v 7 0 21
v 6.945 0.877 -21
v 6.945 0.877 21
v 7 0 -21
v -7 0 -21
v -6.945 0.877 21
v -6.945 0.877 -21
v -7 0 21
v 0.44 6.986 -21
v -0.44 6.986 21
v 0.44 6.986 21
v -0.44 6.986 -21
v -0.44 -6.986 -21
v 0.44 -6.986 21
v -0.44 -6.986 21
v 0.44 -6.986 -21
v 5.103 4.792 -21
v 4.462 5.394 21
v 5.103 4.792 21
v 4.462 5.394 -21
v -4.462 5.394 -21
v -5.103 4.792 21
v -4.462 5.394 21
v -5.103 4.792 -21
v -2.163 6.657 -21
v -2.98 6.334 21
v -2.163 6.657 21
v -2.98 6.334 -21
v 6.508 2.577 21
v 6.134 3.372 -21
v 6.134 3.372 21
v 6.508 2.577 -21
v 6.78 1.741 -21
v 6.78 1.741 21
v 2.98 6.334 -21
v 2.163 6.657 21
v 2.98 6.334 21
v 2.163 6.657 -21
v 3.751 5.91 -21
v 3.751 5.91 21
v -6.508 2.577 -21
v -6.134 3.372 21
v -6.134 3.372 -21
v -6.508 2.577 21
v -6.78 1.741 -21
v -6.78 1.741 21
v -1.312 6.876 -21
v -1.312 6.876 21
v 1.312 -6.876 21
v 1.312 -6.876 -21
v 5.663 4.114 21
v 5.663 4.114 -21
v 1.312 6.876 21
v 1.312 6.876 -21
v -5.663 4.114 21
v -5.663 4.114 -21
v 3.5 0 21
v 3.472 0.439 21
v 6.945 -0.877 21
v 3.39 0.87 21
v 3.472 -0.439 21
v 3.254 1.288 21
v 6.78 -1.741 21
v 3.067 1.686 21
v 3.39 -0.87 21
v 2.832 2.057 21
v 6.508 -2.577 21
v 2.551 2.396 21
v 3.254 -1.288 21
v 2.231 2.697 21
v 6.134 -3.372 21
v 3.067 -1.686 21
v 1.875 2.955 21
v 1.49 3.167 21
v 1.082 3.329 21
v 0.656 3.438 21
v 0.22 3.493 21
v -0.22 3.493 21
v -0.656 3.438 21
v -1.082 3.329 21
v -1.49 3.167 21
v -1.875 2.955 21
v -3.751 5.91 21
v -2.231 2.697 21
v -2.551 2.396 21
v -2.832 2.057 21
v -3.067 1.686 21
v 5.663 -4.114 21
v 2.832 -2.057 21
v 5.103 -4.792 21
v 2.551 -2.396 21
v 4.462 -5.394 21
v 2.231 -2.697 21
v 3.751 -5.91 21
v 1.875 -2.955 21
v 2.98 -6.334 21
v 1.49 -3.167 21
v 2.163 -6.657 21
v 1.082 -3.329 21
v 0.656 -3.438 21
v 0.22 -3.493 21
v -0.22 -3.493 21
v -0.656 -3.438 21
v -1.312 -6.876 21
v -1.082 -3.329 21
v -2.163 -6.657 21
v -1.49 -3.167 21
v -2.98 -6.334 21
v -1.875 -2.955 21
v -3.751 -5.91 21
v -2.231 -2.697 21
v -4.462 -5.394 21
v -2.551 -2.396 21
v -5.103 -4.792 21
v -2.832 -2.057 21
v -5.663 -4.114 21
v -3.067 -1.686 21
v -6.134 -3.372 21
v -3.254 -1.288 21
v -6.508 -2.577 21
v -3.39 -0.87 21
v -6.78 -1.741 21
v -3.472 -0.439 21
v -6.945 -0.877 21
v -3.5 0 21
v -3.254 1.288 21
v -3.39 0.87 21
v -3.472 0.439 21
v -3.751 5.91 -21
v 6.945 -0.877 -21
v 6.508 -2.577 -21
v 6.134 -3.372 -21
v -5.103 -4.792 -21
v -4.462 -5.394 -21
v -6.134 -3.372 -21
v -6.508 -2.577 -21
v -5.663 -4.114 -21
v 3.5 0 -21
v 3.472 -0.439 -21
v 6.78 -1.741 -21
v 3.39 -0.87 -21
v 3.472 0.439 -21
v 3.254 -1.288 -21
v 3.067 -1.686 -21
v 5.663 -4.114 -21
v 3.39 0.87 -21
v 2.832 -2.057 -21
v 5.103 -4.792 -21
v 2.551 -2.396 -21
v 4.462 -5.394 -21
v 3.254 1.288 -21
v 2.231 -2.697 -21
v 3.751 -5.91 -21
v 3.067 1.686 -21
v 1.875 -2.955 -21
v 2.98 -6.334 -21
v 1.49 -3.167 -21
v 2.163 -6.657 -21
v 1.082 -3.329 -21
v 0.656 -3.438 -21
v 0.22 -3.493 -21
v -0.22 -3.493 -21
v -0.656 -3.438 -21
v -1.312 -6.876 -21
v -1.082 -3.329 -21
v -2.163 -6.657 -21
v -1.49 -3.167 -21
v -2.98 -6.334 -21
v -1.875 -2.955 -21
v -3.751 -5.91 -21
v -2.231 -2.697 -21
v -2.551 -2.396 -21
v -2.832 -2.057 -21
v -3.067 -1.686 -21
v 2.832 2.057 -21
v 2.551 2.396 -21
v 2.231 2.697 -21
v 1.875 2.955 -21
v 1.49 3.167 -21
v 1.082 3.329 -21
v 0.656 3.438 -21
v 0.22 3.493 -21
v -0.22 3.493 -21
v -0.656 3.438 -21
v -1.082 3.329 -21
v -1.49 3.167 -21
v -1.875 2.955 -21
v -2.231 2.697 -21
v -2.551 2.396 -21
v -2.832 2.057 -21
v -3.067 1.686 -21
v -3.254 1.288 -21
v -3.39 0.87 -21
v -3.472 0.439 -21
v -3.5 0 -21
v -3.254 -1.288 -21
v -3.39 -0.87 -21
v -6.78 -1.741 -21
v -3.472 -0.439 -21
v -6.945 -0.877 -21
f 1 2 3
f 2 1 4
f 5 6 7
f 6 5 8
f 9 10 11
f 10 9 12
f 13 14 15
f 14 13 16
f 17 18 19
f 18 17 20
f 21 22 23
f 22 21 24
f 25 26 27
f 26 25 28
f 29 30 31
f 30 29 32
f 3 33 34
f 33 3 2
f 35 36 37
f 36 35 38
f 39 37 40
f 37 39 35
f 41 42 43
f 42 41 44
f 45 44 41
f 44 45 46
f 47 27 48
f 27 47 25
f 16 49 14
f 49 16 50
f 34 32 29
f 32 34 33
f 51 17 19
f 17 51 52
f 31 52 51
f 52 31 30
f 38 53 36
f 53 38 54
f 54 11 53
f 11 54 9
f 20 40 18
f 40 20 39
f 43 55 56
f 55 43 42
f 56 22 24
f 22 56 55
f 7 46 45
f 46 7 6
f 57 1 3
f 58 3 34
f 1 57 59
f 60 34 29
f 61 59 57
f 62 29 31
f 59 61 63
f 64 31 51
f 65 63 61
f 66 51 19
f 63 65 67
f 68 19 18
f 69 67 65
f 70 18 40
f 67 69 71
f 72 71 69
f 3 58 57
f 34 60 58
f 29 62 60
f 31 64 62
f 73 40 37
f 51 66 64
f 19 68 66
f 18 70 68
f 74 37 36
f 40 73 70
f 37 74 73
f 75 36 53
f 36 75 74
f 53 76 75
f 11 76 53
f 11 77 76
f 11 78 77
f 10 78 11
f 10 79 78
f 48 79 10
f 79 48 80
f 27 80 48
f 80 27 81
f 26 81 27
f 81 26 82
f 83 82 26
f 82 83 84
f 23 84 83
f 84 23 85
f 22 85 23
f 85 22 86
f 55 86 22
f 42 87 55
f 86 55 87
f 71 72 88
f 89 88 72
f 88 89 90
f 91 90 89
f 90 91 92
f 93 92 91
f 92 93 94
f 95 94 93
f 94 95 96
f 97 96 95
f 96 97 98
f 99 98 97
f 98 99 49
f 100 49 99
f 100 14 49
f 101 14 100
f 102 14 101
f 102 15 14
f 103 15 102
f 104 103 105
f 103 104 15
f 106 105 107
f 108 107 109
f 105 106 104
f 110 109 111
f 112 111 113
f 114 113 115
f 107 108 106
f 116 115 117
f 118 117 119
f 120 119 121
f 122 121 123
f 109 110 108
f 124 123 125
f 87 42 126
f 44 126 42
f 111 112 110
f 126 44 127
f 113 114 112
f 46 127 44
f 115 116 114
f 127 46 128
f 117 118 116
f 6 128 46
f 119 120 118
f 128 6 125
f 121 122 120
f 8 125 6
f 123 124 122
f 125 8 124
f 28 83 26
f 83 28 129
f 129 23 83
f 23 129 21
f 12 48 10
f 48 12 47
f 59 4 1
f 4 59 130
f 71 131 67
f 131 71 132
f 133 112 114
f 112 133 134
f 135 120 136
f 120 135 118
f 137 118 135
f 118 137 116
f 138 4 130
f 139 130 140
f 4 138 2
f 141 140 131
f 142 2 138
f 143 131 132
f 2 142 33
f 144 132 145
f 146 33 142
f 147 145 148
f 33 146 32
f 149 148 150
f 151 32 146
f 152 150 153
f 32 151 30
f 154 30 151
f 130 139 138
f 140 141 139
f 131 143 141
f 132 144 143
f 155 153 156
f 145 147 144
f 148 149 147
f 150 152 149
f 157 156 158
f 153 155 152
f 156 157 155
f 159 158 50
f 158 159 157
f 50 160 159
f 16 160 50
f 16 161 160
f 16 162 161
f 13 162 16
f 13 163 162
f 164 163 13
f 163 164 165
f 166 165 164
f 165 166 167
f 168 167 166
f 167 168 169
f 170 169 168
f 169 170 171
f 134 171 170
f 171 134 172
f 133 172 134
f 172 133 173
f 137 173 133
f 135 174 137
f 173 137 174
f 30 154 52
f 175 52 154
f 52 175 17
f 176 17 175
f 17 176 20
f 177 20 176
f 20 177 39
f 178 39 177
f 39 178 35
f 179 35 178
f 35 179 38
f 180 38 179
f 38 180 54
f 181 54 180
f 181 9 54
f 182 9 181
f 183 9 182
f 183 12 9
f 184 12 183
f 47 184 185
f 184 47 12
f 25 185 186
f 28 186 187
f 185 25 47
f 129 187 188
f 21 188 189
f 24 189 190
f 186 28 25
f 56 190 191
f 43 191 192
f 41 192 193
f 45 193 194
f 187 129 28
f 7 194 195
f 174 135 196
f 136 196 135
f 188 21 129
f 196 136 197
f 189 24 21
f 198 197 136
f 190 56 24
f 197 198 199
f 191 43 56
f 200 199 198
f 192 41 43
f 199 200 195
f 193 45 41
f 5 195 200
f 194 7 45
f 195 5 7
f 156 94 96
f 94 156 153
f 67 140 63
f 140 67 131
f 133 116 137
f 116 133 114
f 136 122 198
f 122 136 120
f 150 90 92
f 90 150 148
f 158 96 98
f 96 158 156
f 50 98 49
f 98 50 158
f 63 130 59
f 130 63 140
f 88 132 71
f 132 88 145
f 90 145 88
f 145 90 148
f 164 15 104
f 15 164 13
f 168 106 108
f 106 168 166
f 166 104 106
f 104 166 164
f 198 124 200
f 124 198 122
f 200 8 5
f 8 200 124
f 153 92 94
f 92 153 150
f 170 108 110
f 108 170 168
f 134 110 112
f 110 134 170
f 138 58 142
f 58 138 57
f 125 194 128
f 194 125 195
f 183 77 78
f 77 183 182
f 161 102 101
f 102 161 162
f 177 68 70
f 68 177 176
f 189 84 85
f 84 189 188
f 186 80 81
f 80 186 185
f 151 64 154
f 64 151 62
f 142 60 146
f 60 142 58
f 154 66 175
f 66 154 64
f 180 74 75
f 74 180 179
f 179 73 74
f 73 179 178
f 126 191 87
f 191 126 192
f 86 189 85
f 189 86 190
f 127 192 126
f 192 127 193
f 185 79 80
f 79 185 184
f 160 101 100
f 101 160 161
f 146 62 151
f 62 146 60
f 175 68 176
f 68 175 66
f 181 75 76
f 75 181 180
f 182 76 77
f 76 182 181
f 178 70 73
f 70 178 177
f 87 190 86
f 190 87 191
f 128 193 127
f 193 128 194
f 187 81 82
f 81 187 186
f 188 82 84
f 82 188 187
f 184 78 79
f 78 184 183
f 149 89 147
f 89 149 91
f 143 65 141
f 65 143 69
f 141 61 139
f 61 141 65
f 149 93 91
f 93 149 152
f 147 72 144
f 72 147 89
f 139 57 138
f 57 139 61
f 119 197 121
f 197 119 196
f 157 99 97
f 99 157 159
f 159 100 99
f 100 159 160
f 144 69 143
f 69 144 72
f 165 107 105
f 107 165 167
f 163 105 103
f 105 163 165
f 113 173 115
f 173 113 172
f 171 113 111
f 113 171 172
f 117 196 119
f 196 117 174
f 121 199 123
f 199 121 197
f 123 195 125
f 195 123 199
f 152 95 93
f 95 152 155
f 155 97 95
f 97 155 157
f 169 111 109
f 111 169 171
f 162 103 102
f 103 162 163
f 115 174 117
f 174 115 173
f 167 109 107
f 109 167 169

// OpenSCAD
$fn = 50;


difference() {
	union() {
		translate(v = [0, 0, -21.0000000000]) {
			cylinder(h = 42, r = 7.0000000000);
		}
	}
	union() {
		translate(v = [0, 0, -100.0000000000]) {
			cylinder(h = 200, r = 3.5000000000);
		}
	}
}
